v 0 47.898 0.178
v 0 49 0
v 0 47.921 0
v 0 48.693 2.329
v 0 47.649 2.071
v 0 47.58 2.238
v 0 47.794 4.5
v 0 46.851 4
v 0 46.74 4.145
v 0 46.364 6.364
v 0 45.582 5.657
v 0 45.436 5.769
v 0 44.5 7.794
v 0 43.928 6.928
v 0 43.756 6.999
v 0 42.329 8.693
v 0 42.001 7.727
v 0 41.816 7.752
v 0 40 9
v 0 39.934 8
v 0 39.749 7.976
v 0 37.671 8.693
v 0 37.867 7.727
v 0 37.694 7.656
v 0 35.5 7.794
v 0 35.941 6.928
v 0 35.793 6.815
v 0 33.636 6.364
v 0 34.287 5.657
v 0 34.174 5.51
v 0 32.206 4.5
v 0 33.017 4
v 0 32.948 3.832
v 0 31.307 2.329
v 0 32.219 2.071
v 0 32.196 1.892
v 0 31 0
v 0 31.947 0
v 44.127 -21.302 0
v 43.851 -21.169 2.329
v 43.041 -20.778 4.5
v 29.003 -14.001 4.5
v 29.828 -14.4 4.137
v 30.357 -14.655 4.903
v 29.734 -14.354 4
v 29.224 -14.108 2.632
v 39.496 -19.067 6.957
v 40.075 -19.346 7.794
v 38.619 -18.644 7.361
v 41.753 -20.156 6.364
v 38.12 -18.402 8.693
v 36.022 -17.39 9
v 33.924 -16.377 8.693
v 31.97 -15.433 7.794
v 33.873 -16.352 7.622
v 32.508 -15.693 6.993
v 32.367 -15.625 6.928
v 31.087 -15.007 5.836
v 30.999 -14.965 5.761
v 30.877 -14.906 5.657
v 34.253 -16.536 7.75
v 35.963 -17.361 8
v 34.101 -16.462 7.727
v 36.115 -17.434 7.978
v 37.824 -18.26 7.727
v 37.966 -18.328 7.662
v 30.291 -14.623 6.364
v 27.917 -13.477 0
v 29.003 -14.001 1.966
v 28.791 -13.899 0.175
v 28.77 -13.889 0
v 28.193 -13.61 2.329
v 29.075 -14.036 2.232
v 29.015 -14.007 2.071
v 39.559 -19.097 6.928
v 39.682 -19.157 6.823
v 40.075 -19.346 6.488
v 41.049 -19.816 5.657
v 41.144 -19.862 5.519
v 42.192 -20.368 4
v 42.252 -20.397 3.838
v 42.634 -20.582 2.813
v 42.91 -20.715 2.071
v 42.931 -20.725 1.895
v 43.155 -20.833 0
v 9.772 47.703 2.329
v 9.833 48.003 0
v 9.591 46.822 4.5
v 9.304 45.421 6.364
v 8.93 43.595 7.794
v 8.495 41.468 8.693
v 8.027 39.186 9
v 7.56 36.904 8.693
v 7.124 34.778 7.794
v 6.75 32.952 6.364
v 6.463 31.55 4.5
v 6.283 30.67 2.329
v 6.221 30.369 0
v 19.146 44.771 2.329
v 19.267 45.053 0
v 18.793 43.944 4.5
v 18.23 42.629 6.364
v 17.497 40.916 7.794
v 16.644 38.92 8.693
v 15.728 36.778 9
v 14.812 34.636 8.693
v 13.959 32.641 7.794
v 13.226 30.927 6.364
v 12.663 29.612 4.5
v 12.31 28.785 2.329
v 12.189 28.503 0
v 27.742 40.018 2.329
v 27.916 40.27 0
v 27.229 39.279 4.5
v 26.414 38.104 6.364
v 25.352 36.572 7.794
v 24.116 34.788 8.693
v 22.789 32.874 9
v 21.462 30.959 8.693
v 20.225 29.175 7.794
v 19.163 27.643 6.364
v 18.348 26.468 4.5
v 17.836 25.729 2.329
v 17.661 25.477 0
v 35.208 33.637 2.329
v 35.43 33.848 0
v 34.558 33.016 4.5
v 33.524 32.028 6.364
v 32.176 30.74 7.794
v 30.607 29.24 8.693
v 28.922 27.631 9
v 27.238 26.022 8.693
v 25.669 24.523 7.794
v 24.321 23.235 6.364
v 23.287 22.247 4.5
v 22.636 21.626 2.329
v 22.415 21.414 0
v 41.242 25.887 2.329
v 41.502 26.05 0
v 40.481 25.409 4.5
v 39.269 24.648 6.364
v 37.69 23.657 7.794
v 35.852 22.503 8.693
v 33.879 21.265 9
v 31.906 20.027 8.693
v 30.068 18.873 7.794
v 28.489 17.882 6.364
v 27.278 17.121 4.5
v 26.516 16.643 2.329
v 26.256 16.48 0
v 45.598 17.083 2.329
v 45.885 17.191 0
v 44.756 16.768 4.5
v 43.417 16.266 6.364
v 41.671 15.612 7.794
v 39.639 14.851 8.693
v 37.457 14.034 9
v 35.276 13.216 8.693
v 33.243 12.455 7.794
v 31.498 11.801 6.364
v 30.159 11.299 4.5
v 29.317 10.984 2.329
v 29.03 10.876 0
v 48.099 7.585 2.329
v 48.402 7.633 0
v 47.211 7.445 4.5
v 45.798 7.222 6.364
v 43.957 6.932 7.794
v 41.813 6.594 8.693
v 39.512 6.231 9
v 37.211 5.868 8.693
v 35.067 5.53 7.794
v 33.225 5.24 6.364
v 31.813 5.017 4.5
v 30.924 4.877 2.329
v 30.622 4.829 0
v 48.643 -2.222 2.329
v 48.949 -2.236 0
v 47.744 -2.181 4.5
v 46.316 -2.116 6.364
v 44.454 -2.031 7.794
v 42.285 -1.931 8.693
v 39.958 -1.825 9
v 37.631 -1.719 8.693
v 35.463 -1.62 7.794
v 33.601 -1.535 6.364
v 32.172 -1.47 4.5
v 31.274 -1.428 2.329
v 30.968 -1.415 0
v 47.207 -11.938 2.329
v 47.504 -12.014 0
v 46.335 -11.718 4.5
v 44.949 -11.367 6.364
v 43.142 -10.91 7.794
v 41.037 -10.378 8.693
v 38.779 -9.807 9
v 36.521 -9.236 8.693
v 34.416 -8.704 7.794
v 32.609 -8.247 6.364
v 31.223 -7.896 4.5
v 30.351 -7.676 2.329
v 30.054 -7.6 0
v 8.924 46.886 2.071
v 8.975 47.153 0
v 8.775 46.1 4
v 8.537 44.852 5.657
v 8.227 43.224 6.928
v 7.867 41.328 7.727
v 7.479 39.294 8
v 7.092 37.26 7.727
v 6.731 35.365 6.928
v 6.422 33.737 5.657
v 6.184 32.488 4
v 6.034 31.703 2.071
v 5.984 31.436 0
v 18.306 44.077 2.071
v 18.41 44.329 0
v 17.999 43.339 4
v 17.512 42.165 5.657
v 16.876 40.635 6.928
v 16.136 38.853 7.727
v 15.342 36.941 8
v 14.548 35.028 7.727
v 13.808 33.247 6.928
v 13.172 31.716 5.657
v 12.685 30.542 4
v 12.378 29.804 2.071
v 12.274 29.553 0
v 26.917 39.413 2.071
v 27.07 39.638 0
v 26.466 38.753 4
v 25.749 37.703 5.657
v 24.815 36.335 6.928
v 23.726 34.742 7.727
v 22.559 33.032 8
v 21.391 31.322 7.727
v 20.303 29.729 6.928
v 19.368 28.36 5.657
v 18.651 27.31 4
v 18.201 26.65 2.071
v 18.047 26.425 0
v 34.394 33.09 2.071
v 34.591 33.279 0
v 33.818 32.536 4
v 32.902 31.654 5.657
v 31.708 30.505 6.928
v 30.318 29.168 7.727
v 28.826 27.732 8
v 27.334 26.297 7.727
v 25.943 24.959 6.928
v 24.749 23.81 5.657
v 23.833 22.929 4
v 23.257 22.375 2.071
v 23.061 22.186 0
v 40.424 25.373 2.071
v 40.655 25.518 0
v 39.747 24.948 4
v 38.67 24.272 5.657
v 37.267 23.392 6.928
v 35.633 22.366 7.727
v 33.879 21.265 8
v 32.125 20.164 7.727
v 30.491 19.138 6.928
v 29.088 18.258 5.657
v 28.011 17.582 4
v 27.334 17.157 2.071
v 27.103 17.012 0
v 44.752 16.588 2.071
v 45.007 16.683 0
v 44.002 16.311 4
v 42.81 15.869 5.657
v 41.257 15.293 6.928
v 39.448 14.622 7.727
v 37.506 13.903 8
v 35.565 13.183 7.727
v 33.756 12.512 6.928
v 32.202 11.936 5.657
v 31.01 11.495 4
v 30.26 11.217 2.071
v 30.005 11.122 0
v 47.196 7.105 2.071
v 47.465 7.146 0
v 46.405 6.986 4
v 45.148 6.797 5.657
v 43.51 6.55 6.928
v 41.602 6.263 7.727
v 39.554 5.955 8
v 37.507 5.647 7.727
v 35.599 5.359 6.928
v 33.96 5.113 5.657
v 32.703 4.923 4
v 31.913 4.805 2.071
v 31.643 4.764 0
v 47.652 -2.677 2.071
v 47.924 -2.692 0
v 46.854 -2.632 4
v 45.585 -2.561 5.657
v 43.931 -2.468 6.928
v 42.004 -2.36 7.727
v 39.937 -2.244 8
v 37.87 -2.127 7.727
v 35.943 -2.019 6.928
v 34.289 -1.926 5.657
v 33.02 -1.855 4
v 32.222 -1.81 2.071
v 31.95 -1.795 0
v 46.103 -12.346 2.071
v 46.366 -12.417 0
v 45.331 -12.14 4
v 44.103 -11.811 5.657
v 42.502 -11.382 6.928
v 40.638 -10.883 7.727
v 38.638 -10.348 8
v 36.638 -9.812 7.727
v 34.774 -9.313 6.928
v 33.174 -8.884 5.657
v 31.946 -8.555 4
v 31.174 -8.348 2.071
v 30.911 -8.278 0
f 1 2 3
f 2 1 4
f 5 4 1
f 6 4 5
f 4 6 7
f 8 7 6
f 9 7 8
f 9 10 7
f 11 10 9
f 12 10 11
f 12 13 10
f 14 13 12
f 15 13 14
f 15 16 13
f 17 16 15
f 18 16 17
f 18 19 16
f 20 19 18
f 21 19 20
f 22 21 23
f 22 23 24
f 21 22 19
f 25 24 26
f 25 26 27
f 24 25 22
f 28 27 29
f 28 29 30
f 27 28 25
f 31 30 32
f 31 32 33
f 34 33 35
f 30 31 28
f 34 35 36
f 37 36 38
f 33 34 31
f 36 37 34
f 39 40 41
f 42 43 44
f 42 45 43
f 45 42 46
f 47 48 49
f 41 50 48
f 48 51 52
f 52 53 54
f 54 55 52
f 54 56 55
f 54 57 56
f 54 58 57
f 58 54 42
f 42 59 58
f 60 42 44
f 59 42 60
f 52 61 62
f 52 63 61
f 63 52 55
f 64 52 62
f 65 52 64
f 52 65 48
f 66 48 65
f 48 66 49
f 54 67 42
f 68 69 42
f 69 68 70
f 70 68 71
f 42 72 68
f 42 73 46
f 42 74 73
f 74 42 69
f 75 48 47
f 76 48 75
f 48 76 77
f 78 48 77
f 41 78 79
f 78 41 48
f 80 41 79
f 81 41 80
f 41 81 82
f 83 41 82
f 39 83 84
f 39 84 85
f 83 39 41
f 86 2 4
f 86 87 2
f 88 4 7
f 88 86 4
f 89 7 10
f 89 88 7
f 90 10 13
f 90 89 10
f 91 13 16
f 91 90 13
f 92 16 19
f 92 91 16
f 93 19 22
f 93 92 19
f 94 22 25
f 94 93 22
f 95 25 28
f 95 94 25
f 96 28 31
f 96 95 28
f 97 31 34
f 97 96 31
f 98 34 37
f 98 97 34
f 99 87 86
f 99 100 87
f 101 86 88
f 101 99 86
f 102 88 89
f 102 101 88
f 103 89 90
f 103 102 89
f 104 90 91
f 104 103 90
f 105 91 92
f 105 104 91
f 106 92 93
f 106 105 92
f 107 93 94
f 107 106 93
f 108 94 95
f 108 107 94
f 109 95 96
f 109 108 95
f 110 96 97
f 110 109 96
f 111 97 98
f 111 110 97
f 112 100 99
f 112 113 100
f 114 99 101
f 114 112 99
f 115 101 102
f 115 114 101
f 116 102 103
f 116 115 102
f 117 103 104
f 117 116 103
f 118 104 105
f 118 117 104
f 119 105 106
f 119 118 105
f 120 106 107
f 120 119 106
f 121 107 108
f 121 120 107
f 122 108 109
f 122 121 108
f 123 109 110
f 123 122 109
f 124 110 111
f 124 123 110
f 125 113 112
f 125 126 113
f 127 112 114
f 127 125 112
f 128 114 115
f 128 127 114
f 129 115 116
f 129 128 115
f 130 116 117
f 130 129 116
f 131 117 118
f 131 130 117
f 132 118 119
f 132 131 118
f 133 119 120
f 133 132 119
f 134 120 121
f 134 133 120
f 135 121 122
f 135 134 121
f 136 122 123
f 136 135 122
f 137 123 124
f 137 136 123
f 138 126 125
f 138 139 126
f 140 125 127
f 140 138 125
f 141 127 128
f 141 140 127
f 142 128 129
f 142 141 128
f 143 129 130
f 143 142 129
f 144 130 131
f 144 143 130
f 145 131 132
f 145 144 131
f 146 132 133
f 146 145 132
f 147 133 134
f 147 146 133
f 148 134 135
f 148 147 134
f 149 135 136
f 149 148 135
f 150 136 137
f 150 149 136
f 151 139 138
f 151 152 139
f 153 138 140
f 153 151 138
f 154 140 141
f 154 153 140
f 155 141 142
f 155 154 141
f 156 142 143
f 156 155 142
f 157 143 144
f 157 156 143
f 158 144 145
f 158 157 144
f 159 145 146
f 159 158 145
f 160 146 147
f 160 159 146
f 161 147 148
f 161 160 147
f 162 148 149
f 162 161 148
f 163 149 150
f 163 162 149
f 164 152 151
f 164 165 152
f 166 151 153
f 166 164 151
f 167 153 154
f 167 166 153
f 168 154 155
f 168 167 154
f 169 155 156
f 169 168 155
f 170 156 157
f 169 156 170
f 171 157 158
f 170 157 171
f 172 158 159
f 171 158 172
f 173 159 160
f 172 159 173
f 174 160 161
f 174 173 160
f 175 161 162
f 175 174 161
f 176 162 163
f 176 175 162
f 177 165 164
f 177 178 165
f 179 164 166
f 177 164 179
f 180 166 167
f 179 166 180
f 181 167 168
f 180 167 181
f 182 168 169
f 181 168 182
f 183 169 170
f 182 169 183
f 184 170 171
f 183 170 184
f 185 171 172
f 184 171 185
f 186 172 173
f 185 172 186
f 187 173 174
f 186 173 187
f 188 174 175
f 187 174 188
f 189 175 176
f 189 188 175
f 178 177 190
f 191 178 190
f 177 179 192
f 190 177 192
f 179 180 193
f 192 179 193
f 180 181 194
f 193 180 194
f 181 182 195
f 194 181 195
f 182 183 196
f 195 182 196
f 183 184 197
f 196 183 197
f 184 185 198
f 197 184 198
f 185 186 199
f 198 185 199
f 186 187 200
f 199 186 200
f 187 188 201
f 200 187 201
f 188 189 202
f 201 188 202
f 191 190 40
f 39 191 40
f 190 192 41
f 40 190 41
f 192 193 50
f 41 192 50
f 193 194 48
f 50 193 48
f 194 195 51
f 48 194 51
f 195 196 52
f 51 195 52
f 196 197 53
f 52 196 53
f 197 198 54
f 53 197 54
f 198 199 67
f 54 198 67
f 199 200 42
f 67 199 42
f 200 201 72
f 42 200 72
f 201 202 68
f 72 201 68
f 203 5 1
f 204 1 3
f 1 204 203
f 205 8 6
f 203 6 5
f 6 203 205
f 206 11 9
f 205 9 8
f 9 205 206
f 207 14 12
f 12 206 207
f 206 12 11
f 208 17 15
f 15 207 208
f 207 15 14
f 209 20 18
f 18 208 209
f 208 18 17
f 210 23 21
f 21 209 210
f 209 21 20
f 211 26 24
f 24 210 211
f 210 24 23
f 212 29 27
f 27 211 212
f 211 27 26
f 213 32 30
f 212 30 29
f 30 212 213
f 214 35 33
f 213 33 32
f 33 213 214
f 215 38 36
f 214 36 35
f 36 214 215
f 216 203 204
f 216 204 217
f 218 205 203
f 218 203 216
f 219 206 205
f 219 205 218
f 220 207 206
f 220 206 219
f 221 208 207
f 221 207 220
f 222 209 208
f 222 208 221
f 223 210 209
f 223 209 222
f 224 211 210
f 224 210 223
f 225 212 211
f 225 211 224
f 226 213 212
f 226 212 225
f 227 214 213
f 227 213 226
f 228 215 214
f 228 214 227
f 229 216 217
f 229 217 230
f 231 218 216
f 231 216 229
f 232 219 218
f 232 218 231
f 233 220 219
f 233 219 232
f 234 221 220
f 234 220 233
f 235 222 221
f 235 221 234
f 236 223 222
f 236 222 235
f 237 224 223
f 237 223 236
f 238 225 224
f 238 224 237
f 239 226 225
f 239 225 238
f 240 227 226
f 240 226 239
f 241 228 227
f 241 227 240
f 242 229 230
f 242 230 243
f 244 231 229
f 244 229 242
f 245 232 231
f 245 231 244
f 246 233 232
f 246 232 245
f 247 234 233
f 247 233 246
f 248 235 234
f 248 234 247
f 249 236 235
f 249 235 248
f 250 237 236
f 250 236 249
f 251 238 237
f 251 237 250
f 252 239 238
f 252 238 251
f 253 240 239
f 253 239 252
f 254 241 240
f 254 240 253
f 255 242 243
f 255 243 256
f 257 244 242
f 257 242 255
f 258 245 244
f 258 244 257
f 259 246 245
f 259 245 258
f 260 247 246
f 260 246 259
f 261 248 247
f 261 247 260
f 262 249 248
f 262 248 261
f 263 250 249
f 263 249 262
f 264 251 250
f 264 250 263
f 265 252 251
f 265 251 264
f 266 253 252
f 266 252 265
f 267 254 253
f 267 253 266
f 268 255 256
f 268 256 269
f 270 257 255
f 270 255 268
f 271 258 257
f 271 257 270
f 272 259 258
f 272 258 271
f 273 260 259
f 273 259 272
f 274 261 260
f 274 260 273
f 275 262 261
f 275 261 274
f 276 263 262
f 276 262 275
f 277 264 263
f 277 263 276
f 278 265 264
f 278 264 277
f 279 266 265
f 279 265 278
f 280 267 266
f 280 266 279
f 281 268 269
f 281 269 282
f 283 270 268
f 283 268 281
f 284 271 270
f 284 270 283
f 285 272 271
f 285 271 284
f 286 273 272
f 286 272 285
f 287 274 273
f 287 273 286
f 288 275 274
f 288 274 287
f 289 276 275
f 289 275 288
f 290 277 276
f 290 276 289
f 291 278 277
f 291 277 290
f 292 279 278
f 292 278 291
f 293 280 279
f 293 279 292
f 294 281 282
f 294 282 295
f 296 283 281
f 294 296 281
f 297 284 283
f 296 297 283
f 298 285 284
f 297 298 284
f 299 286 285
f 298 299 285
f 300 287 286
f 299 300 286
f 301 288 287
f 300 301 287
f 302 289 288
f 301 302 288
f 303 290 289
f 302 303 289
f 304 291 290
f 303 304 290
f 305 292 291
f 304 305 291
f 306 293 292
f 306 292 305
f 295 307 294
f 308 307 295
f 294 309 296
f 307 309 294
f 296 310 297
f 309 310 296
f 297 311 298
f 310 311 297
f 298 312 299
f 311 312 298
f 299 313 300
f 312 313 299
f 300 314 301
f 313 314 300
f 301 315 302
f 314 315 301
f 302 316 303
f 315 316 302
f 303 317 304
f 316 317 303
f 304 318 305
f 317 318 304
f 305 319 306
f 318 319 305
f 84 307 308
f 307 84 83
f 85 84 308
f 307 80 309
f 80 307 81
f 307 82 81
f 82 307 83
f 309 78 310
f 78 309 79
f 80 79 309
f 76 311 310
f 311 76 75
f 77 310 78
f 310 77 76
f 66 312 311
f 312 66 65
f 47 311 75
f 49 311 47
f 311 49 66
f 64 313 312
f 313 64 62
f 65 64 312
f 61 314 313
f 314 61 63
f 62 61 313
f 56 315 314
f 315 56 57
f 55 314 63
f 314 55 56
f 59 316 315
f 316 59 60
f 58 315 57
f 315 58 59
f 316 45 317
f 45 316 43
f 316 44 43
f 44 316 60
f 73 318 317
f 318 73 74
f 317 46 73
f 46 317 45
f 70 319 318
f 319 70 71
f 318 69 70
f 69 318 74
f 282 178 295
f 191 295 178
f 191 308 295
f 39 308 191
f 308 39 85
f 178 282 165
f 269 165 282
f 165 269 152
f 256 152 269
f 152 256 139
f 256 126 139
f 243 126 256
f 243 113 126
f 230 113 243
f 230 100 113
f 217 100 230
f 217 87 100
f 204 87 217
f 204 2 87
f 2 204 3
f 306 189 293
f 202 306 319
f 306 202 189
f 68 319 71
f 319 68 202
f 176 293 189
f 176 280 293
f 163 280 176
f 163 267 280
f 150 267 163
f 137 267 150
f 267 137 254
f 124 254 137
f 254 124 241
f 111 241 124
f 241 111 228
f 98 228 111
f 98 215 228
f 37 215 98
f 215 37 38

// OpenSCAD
// file: ../build_environments.scad
// build_environments.scad: modules to build level sections
//

module pool(diameter=10.0, wall_height=2.0, step_width=3.0, connections=[])
{
    difference() {
        union() {
        difference() {
            cylinder(h=0.5,r1=diameter+step_width,r2=diameter+step_width,$fn=48);
            translate([0,0,-0.1])
                cylinder(h=0.7,r1=diameter,r2=diameter,$fn=48);
        }
        difference() {
            cylinder(h=wall_height,r1=diameter+step_width+1.0,r2=diameter+step_width+1.0,$fn=48);
            translate([0,0,-0.1])
                cylinder(h=wall_height+0.2,r1=diameter+step_width,r2=diameter+step_width,$fn=48);
        }
        }
    
        for (c = connections)
        {
            rotate([0,90,0]) {
                angle = atan2(c[1],c[0]);
                rotate([-angle,0,0]) {
                    cylinder(h=diameter+5.0,r1=c[2],r2=c[2],$fn=48);
                }
            }
        }
    }
}

module straight(length=10.0, width=2.0, dy1=0.0, dy2=0.0, dz=0.0)
{
    dims = [0, 0, 0, 0, 0, (dz/length)];
    matrix = [
        [ 1, dims[0], dims[1], 0 ],
        [ dims[2], 1, dims[4], 0 ],
        [ dims[5], dims[3], 1, 0 ],
        [ 0, 0, 0, 1 ]
    ];
    multmatrix(matrix)
    difference() {
        translate([dy1,0,0])
        union() {
            rotate([0,90,0]) {
                difference() {
                    cylinder(h=(length-dy1-dy2),r1=width+1.0,r2=width+1.0,$fn=24);
                    translate([0,0,-0.1])
                        cylinder(h=(length-dy1-dy2+0.2),r1=width,r2=width,$fn=24);
                }
                difference() {
                    cylinder(h=1.0,r1=width+2.0,r2=width+2.0,$fn=24);
                    translate([0,0,-0.1])
                        cylinder(h=1.2,r1=width,r2=width,$fn=24);
                }
                translate([0,0,(length-dy1-dy2)-1.0]) {
                    difference() {
                        cylinder(h=1.0,r1=width+2.0,r2=width+2.0,$fn=24);
                        translate([0,0,-0.1])
                            cylinder(h=1.2,r1=width,r2=width,$fn=24);
                    }
                }
            }
        }
        translate([0,0,-(2*width+4.0)/2])
            cube([3*length,3*length,2*width+4.0],center=true);
    }
}

module curve(p0=[0,0], center=[0,0], dir=1, angle=0.0, width=2.0)
{
    radius = sqrt((p0[0]-center[0])*(p0[0]-center[0]) + (p0[1]-center[1])*(p0[1]-center[1]));
    if (dir == 0) {
        difference() {
            rotate([0,0,-90])
            difference() {
                rotate_extrude(angle = angle, convexity = 10, $fn=32)
                    translate([radius, 0, 0])
                        circle(r = width+1.0,$fn=24);
                rotate([0,0,-1.0])
                    rotate_extrude(angle = angle+2.0, convexity = 10, $fn=32)
                        translate([radius, 0, 0])
                            circle(r = width,$fn=24);
            }
            translate([0,0,-(2*width+4.0)/2])
                cube([5*radius,5*radius,2*width+4.0],center=true);
        }
    }
    else {
        difference() {
            rotate([0,0,90])
            difference() {
                rotate_extrude(angle = -angle, convexity = 10, $fn=32)
                    translate([radius, 0, 0])
                        circle(r = width+1.0,$fn=24);
                rotate([0,0,1.0])
                    rotate_extrude(angle = -angle-2.0, convexity = 10, $fn=32)
                        translate([radius, 0, 0])
                            circle(r = width,$fn=24);
            }
            translate([0,0,-(2*width+4.0)/2])
                cube([5*radius,5*radius,2*width+4.0],center=true);
        }
    }

}

// test pool
//pool(diameter=12.0000, wall_height=3.0000, step_width=3.0000, connections=[[0.0000,-26.0000,2.0000], [23.6074,0.0000,2.0000]]);

// test straight, slope
//straight(length=26.0000, width=2.0000, dy1=11.8322, dy2=6.7082, dz=0.0000);
//straight(length=29.1549, width=12.0000, dy1=0.0000, dy2=0.0000, dz=-15.0000);

// test curve
//curve(p0=[23.6074, 0.0000], center=[23.6074, 5.0000], dir=0, angle=60.1011, width=2.0000);
//curve(p0=[33.6426, 12.4219], center=[37.9771, 9.9295], dir=1, angle=120.4627, width=2.0000);
// main file
use <../build_environments.scad>;
curve(p0=[134.6991, 278.1824], center=[102.4173, 301.8019], dir=1, angle=115.7691, width=8.0000);
